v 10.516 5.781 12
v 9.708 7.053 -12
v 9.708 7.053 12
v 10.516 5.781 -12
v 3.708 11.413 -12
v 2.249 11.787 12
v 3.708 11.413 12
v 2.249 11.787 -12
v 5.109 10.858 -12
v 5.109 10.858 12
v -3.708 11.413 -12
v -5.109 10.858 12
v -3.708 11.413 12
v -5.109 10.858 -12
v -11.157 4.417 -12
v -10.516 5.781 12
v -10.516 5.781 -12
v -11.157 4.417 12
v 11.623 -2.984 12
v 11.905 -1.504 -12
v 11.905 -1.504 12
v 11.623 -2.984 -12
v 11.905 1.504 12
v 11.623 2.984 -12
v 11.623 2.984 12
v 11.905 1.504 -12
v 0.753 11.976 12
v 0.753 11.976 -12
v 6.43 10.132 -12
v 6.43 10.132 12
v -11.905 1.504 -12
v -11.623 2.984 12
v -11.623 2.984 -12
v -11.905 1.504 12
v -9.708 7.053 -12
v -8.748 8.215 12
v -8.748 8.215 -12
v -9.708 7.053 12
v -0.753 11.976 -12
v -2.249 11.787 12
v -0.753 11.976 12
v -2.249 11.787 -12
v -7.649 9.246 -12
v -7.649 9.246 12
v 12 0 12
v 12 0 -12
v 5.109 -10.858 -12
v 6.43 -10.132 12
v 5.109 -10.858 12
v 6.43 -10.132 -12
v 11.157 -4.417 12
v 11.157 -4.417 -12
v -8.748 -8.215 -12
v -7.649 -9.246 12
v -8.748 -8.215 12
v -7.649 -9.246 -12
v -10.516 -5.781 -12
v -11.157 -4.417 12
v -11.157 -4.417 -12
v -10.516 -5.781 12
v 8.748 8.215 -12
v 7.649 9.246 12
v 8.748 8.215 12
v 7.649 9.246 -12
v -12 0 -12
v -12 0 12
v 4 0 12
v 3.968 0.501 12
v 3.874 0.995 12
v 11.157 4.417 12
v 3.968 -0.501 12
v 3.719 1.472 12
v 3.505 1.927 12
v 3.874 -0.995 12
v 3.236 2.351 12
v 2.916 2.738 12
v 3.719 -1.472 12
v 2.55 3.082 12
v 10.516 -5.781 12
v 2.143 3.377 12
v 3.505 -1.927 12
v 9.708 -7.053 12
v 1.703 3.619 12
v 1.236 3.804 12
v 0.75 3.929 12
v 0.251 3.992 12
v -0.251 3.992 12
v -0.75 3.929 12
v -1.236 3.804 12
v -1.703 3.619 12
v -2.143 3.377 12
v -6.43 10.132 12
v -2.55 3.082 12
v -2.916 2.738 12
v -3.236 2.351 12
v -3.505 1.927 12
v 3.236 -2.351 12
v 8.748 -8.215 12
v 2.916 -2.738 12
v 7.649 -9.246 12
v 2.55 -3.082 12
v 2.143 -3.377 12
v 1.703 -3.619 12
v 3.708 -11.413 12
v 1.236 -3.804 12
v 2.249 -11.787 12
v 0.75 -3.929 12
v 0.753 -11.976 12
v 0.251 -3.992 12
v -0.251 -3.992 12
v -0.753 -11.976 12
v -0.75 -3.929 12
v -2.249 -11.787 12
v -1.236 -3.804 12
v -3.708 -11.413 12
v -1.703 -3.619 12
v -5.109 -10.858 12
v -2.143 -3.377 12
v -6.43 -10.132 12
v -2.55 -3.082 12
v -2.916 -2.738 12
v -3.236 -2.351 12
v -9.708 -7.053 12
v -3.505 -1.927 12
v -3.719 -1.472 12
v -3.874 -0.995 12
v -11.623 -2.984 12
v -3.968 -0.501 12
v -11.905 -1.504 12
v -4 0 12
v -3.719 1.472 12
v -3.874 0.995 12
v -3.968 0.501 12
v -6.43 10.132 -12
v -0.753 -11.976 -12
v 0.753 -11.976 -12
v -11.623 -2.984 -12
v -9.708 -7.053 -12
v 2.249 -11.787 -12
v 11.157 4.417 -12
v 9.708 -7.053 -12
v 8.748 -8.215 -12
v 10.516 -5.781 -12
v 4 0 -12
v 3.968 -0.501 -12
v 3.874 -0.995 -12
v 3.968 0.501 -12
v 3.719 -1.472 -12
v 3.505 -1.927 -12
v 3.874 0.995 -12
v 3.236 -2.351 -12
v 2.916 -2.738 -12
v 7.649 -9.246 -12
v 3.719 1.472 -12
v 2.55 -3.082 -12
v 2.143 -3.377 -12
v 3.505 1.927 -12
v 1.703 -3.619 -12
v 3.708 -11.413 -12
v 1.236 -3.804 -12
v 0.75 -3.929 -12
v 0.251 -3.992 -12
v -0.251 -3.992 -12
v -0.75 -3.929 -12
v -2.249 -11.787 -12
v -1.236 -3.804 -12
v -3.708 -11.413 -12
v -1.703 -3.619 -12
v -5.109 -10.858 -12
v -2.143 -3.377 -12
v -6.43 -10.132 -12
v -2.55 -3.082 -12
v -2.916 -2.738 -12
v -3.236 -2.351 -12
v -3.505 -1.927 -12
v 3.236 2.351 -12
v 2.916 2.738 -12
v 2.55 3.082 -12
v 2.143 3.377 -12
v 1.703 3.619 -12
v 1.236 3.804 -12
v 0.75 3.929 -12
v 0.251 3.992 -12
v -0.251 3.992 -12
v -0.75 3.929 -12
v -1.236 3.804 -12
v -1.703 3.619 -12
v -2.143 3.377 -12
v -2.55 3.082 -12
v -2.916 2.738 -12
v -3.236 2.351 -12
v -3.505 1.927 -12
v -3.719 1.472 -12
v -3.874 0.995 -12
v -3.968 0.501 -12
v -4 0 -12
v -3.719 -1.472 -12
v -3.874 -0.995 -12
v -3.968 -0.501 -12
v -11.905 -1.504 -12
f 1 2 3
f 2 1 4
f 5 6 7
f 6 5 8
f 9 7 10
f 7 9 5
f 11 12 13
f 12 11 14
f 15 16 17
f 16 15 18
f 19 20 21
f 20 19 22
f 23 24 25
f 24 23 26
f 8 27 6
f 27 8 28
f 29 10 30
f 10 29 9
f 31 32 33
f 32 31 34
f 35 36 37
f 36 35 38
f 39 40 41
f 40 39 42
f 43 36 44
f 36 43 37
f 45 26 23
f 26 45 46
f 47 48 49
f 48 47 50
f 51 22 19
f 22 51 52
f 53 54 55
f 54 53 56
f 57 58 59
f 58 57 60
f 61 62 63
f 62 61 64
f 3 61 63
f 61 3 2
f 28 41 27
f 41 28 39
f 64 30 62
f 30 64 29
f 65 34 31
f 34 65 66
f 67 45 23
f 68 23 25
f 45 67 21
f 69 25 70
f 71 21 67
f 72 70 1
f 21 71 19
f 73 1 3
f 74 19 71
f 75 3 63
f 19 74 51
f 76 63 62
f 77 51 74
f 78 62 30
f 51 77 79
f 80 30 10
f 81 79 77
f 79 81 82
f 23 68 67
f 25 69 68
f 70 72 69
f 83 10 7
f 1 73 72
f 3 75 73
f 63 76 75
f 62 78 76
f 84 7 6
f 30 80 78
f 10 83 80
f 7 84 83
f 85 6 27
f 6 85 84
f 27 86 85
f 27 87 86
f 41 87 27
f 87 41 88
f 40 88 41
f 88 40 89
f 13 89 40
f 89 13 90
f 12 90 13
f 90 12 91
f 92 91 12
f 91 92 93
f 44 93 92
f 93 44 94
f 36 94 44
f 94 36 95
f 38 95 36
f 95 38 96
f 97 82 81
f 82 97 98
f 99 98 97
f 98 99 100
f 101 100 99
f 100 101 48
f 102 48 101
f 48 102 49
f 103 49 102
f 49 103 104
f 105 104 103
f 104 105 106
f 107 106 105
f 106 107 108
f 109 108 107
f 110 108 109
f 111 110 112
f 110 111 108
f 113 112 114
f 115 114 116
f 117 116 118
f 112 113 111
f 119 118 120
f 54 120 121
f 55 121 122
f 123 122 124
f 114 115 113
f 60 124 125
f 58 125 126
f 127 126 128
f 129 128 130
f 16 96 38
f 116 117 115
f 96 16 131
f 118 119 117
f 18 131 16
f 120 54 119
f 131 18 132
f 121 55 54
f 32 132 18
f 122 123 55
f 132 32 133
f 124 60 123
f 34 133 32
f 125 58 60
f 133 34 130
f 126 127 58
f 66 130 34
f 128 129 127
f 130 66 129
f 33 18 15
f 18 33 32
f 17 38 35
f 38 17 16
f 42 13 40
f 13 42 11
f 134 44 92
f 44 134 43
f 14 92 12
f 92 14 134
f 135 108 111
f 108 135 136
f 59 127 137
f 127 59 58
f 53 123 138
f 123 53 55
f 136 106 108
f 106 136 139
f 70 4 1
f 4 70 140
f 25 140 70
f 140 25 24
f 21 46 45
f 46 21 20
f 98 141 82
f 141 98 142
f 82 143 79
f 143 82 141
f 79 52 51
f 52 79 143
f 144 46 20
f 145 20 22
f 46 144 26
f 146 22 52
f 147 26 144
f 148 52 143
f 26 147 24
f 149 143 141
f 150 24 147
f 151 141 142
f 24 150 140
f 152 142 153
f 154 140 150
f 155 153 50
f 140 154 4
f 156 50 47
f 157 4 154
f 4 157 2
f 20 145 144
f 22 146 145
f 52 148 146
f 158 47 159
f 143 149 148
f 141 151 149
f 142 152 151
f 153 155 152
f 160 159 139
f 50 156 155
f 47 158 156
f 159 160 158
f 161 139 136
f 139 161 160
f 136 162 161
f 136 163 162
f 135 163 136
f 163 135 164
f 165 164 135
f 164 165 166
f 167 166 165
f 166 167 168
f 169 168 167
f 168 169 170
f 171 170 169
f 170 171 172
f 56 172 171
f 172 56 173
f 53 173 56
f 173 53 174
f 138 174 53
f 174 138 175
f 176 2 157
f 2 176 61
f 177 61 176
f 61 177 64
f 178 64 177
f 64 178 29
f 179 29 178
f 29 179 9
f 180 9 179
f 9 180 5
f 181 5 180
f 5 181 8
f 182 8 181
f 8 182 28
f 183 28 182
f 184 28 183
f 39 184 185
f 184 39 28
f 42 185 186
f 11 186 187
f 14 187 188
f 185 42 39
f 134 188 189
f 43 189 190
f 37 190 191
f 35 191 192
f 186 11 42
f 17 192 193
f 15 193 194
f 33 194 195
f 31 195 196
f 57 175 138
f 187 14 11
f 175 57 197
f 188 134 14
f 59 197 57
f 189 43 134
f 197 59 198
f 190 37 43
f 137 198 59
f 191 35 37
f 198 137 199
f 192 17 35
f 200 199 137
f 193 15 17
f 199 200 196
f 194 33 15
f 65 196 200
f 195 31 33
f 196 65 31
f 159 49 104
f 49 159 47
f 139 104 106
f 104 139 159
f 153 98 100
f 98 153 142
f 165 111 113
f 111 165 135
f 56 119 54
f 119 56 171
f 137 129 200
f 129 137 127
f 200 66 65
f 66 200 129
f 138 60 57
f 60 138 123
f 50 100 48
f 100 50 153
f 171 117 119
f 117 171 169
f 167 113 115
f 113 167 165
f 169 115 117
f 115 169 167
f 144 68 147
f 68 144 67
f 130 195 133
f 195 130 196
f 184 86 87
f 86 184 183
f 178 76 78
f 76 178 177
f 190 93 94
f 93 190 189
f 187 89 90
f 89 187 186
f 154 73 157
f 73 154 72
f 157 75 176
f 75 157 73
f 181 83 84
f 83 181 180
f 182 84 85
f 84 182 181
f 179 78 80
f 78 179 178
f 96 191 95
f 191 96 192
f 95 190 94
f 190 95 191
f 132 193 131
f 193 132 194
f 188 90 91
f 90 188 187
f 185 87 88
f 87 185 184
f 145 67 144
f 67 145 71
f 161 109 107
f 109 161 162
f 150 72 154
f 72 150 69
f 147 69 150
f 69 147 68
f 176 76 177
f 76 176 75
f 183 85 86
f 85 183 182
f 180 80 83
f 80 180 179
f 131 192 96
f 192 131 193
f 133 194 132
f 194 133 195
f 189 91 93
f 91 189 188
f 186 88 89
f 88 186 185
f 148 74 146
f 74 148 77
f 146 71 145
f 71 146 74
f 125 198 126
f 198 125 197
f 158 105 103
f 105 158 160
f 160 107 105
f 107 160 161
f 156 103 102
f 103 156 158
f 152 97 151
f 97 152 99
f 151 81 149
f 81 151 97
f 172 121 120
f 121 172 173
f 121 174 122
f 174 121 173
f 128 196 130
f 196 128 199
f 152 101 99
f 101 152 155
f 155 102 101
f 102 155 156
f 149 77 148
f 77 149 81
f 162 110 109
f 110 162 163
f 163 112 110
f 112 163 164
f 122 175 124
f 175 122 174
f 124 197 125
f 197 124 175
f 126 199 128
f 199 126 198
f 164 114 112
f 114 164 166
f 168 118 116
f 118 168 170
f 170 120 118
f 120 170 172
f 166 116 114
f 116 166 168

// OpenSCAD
$fn = 50;


difference() {
	union() {
		translate(v = [0, 0, -12.0000000000]) {
			cylinder(h = 24, r = 12.0000000000);
		}
	}
	union() {
		translate(v = [0, 0, -100.0000000000]) {
			cylinder(h = 200, r = 4);
		}
	}
}
